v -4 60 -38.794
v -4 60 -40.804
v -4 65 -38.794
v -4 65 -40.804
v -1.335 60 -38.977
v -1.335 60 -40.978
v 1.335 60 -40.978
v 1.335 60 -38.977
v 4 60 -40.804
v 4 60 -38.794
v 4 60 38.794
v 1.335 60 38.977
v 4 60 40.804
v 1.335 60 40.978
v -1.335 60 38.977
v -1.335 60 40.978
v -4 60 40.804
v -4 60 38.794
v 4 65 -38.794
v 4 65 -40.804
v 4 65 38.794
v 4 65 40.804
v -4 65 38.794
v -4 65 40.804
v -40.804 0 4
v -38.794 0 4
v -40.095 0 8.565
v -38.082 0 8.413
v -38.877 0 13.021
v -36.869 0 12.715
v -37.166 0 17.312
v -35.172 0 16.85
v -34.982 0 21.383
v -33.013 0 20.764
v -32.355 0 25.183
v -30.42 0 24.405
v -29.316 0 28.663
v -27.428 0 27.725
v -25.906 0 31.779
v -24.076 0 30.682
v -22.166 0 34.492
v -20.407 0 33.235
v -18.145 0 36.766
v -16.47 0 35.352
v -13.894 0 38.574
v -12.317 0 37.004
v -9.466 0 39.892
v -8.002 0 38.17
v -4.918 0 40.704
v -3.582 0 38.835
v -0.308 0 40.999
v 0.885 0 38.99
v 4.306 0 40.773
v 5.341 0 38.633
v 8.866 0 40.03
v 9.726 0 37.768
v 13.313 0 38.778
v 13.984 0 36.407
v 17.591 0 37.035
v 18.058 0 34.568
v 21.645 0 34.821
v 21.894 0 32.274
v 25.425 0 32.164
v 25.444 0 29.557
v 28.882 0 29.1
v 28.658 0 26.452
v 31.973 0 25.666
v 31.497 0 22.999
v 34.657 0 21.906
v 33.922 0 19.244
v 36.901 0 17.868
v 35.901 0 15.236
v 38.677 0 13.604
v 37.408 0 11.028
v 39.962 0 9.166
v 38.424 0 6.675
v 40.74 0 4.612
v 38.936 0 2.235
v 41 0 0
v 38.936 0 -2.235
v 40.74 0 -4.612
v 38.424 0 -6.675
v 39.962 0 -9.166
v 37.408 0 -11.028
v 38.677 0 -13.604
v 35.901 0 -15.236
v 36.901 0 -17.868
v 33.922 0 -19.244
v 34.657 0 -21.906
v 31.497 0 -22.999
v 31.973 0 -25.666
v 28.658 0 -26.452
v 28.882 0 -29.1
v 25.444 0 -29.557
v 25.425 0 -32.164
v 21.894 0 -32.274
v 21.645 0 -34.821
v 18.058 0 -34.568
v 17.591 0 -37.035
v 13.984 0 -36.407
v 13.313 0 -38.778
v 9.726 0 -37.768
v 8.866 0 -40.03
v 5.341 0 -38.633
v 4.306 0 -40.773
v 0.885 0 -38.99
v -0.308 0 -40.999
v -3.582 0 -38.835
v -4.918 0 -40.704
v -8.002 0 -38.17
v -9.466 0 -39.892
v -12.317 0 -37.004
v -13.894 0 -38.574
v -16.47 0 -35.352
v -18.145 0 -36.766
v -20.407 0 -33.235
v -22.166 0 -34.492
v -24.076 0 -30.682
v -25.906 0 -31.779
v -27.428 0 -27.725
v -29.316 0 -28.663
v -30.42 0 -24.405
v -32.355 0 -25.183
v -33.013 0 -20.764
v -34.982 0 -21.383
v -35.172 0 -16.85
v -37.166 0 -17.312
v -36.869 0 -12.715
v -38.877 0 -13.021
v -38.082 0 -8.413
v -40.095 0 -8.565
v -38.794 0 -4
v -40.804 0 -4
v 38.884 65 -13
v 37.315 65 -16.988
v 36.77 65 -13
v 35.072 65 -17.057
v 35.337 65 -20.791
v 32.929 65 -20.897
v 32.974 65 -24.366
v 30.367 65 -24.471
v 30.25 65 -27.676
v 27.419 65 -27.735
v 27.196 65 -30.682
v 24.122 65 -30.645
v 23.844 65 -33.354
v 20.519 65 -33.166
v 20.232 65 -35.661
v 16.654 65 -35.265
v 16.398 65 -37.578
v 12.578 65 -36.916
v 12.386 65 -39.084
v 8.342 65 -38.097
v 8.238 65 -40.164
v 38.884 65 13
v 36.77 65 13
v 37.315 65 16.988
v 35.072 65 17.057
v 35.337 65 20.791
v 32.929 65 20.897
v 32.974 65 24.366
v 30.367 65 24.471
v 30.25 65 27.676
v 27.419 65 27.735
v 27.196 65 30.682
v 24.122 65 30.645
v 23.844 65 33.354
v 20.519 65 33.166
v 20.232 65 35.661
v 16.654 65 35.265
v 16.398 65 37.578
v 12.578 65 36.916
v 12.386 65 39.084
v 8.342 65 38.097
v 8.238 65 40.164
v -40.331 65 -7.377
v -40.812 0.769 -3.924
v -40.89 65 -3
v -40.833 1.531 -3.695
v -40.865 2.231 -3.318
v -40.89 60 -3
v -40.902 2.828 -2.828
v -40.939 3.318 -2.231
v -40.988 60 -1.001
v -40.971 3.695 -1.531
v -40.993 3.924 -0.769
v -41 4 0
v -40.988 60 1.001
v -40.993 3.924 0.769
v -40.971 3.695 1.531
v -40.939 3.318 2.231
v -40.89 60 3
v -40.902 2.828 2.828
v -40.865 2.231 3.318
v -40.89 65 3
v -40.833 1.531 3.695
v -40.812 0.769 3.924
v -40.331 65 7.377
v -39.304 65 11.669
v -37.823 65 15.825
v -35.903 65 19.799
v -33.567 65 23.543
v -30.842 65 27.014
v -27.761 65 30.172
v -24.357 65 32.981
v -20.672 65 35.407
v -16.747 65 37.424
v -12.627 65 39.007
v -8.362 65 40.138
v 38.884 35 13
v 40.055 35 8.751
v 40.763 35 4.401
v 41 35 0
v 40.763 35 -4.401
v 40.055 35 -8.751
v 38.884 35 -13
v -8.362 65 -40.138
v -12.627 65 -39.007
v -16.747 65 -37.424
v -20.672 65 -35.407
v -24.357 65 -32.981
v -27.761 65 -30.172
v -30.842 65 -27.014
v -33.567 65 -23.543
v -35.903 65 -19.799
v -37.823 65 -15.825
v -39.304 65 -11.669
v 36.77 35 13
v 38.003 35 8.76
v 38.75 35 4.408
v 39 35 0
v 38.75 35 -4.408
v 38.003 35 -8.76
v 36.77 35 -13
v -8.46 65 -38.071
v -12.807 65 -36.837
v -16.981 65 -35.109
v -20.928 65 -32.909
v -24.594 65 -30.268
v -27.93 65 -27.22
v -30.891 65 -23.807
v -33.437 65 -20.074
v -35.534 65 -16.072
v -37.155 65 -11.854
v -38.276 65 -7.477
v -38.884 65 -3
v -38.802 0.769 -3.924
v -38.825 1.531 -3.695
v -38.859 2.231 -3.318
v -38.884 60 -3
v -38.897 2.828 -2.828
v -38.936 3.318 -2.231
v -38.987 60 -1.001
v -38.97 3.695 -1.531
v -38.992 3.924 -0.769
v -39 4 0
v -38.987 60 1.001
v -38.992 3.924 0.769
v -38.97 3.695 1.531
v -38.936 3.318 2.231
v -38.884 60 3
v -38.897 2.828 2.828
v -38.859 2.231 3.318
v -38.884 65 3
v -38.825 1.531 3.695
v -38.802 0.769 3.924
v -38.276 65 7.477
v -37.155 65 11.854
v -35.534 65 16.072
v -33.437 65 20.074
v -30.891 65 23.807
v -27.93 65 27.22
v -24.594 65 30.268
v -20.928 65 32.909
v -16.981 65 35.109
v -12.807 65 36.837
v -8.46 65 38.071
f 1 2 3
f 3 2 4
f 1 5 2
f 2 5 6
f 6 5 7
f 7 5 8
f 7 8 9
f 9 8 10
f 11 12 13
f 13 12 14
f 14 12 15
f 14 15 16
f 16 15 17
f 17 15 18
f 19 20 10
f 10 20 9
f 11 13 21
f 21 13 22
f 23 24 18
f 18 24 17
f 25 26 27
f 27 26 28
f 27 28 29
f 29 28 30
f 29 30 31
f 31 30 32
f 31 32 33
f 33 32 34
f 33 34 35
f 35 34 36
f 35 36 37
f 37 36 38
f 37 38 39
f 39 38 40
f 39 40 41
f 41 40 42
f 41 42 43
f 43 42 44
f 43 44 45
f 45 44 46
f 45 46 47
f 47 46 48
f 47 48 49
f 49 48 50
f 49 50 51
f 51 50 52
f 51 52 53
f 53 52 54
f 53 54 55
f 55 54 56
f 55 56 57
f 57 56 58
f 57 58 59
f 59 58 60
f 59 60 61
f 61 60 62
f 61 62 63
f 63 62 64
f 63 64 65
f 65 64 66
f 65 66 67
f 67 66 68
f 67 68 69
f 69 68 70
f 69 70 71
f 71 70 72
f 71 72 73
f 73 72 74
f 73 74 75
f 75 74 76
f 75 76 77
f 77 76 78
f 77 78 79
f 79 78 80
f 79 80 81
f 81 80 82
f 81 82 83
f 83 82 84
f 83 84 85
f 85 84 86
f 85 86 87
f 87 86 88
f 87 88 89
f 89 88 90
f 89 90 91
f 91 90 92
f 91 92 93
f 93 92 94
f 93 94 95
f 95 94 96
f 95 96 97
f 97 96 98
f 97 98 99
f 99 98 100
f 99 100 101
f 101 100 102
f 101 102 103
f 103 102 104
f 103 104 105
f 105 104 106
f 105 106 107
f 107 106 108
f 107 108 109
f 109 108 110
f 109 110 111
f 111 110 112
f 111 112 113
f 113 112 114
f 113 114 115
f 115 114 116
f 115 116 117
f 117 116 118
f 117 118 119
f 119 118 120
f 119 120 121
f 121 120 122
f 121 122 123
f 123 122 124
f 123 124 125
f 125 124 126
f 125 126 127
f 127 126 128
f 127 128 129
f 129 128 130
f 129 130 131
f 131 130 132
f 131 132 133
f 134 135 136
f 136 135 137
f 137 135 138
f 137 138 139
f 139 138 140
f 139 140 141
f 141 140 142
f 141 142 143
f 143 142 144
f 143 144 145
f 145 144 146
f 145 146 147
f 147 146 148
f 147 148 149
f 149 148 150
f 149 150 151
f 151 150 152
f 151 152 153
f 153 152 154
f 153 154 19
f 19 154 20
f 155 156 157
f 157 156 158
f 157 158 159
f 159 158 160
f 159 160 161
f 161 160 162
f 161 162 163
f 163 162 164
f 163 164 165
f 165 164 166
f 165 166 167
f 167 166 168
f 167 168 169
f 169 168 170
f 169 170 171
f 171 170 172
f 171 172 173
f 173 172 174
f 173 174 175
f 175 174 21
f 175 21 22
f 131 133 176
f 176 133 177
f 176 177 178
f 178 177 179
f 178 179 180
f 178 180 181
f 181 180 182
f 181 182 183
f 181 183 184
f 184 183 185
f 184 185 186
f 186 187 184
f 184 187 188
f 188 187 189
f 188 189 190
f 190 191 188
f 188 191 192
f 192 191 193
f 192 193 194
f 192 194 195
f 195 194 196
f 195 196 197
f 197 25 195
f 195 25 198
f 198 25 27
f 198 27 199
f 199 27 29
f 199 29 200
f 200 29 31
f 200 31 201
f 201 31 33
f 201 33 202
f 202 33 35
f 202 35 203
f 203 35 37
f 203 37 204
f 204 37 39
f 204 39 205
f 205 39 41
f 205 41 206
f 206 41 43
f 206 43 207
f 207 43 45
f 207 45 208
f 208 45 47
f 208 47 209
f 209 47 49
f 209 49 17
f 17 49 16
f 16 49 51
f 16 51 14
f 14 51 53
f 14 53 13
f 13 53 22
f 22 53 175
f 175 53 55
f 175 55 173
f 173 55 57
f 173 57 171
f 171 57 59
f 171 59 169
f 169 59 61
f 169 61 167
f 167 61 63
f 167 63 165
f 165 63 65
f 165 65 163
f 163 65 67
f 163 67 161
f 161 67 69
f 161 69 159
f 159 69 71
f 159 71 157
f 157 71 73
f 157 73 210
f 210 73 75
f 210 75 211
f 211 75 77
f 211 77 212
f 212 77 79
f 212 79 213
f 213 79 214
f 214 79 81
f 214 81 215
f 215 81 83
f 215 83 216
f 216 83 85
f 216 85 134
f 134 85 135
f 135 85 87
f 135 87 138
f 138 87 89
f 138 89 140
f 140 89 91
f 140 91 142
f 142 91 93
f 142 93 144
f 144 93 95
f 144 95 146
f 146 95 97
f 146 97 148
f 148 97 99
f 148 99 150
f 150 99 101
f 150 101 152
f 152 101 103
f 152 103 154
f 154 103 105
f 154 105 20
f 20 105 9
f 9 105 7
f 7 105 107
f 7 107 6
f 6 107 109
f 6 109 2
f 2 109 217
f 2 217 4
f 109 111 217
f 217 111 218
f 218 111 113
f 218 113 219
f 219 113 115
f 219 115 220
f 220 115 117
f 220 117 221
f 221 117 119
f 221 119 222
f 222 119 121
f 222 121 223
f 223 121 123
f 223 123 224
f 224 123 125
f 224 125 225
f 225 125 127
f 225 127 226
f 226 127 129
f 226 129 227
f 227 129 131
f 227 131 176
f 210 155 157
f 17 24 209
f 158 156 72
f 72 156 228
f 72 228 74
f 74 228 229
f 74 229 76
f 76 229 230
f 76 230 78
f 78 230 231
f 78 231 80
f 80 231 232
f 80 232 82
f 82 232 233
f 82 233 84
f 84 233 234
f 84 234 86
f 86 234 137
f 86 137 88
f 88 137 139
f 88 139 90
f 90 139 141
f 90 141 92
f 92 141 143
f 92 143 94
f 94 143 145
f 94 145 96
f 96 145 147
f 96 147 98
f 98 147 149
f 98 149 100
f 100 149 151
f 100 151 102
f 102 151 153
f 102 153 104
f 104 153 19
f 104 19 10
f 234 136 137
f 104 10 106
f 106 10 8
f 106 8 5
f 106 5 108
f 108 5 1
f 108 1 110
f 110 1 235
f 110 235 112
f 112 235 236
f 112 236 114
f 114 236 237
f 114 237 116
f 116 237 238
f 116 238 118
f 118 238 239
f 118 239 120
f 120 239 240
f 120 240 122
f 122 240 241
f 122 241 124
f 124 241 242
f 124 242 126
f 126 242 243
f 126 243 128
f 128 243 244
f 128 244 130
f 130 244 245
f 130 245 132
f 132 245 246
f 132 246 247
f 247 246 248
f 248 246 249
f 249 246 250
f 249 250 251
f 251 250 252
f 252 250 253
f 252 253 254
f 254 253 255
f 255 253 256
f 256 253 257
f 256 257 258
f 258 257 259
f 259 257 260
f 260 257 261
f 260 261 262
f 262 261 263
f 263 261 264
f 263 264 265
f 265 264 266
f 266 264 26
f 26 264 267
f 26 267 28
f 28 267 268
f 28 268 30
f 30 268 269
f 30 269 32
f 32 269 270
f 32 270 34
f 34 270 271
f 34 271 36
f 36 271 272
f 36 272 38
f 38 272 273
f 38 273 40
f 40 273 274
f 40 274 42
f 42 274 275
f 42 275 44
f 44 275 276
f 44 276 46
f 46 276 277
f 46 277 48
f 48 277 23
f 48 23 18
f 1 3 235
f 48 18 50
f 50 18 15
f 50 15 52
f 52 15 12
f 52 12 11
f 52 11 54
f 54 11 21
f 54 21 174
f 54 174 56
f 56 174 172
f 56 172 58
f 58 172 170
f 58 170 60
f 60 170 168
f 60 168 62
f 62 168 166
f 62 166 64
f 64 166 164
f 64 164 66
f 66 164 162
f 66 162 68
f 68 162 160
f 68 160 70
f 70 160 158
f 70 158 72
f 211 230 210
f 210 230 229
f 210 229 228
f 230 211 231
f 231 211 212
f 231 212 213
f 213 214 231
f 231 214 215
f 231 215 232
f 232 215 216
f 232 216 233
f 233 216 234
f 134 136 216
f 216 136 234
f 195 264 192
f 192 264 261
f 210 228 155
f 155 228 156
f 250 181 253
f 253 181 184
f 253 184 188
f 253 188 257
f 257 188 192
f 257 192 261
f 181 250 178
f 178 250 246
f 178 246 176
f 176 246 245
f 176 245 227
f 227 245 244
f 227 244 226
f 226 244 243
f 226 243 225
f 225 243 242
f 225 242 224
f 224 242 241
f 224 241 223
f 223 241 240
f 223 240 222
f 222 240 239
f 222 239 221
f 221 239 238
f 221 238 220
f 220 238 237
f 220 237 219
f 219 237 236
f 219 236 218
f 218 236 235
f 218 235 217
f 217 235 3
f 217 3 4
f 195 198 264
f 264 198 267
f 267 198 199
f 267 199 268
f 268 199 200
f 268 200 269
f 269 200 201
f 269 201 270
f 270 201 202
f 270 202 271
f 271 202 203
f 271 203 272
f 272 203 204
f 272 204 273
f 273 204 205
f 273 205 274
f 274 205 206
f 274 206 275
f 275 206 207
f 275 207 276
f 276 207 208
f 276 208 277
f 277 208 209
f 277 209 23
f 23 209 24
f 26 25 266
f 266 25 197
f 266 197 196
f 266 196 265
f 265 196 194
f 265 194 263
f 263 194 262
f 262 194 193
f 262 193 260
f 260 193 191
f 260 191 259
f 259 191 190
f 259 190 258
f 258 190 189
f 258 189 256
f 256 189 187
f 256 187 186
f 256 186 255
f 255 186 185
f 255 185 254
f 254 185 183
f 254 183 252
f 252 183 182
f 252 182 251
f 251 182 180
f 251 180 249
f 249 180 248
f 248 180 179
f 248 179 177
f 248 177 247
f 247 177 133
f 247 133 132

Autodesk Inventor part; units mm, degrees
ref_plane "YZ Plane" through (0, 0, 0) normal (1, 0, 0) x (0, 1, 0)
ref_plane "XZ Plane" through (0, 0, 0) normal (0, 1, 0) x (-1, 0, 0)
ref_plane "XY Plane" through (0, 0, 0) normal (0, 0, 1) x (1, 0, 0)
sketch "Sketch1" plane through (0, 0, 0) normal (0, 1, 0) x (-1, 0, 0)
  circle A0 centre (0, 0) radius 41
  circle A1 centre (0, 0) radius 39
  dimension "d0" = 82
  dimension "d1" = 78
extrude "Extrusion1" add sketch "Sketch1" along normal blind 65
sketch "Sketch2" plane through (0, 65, 0) normal (0, 1, 0) x (1, 0, 0)
  line L0 (-4, -41) -> (4, -41)
  line L1 (4, -41) -> (4, 41)
  line L2 (4, 41) -> (-4, 41)
  line L3 (-4, 41) -> (-4, -41)
  line L4 (-4, -41) -> (4, 41) construction
  line L5 (4, -41) -> (-4, 41) construction
  point P0 (0, 0)
  dimension "d4" = 8
  dimension "d5" = 82
extrude "Extrusion2" cut sketch "Sketch2" against normal blind 5
sketch "Sketch3" plane through (0, 65, 0) normal (0, 1, 0) x (1, 0, 0)
  line L0 (-41, 3) -> (-41, -3)
  line L1 (-41, -3) -> (41, -3)
  line L2 (41, -3) -> (41, 3)
  line L3 (41, 3) -> (-41, 3)
  line L4 (-41, 3) -> (41, -3) construction
  line L5 (-41, -3) -> (41, 3) construction
  line L6 (-41, 3) -> (-35, 3) construction
  point P0 (0, 0)
  dimension "d8" = 6
  dimension "d9" = 90
  dimension "d10" = 82
extrude "Extrusion3" cut sketch "Sketch3" against normal blind 5
sketch "Sketch4" plane through (0, 65, 0) normal (0, 1, 0) x (1, 0, 0)
  line L0 (0, 0) -> (0, 13)
  line L1 (0, 13) -> (0, -13)
  line L2 (0, -13) -> (82, -13)
  line L3 (82, -13) -> (82, 13)
  line L4 (82, 13) -> (0, 13)
  dimension "d13" = 13
  dimension "d14" = 26
  dimension "d15" = 82
extrude "Extrusion4" cut sketch "Sketch4" against normal blind 30
sketch "Sketch5" plane through (0, 0, 0) normal (1, 0, 0) x (0, 1, 0)
  circle A0 centre (0, 0) radius 4
  dimension "d18" = 8
extrude "Extrusion5" cut sketch "Sketch5" against normal blind 82
properties part number "case"
